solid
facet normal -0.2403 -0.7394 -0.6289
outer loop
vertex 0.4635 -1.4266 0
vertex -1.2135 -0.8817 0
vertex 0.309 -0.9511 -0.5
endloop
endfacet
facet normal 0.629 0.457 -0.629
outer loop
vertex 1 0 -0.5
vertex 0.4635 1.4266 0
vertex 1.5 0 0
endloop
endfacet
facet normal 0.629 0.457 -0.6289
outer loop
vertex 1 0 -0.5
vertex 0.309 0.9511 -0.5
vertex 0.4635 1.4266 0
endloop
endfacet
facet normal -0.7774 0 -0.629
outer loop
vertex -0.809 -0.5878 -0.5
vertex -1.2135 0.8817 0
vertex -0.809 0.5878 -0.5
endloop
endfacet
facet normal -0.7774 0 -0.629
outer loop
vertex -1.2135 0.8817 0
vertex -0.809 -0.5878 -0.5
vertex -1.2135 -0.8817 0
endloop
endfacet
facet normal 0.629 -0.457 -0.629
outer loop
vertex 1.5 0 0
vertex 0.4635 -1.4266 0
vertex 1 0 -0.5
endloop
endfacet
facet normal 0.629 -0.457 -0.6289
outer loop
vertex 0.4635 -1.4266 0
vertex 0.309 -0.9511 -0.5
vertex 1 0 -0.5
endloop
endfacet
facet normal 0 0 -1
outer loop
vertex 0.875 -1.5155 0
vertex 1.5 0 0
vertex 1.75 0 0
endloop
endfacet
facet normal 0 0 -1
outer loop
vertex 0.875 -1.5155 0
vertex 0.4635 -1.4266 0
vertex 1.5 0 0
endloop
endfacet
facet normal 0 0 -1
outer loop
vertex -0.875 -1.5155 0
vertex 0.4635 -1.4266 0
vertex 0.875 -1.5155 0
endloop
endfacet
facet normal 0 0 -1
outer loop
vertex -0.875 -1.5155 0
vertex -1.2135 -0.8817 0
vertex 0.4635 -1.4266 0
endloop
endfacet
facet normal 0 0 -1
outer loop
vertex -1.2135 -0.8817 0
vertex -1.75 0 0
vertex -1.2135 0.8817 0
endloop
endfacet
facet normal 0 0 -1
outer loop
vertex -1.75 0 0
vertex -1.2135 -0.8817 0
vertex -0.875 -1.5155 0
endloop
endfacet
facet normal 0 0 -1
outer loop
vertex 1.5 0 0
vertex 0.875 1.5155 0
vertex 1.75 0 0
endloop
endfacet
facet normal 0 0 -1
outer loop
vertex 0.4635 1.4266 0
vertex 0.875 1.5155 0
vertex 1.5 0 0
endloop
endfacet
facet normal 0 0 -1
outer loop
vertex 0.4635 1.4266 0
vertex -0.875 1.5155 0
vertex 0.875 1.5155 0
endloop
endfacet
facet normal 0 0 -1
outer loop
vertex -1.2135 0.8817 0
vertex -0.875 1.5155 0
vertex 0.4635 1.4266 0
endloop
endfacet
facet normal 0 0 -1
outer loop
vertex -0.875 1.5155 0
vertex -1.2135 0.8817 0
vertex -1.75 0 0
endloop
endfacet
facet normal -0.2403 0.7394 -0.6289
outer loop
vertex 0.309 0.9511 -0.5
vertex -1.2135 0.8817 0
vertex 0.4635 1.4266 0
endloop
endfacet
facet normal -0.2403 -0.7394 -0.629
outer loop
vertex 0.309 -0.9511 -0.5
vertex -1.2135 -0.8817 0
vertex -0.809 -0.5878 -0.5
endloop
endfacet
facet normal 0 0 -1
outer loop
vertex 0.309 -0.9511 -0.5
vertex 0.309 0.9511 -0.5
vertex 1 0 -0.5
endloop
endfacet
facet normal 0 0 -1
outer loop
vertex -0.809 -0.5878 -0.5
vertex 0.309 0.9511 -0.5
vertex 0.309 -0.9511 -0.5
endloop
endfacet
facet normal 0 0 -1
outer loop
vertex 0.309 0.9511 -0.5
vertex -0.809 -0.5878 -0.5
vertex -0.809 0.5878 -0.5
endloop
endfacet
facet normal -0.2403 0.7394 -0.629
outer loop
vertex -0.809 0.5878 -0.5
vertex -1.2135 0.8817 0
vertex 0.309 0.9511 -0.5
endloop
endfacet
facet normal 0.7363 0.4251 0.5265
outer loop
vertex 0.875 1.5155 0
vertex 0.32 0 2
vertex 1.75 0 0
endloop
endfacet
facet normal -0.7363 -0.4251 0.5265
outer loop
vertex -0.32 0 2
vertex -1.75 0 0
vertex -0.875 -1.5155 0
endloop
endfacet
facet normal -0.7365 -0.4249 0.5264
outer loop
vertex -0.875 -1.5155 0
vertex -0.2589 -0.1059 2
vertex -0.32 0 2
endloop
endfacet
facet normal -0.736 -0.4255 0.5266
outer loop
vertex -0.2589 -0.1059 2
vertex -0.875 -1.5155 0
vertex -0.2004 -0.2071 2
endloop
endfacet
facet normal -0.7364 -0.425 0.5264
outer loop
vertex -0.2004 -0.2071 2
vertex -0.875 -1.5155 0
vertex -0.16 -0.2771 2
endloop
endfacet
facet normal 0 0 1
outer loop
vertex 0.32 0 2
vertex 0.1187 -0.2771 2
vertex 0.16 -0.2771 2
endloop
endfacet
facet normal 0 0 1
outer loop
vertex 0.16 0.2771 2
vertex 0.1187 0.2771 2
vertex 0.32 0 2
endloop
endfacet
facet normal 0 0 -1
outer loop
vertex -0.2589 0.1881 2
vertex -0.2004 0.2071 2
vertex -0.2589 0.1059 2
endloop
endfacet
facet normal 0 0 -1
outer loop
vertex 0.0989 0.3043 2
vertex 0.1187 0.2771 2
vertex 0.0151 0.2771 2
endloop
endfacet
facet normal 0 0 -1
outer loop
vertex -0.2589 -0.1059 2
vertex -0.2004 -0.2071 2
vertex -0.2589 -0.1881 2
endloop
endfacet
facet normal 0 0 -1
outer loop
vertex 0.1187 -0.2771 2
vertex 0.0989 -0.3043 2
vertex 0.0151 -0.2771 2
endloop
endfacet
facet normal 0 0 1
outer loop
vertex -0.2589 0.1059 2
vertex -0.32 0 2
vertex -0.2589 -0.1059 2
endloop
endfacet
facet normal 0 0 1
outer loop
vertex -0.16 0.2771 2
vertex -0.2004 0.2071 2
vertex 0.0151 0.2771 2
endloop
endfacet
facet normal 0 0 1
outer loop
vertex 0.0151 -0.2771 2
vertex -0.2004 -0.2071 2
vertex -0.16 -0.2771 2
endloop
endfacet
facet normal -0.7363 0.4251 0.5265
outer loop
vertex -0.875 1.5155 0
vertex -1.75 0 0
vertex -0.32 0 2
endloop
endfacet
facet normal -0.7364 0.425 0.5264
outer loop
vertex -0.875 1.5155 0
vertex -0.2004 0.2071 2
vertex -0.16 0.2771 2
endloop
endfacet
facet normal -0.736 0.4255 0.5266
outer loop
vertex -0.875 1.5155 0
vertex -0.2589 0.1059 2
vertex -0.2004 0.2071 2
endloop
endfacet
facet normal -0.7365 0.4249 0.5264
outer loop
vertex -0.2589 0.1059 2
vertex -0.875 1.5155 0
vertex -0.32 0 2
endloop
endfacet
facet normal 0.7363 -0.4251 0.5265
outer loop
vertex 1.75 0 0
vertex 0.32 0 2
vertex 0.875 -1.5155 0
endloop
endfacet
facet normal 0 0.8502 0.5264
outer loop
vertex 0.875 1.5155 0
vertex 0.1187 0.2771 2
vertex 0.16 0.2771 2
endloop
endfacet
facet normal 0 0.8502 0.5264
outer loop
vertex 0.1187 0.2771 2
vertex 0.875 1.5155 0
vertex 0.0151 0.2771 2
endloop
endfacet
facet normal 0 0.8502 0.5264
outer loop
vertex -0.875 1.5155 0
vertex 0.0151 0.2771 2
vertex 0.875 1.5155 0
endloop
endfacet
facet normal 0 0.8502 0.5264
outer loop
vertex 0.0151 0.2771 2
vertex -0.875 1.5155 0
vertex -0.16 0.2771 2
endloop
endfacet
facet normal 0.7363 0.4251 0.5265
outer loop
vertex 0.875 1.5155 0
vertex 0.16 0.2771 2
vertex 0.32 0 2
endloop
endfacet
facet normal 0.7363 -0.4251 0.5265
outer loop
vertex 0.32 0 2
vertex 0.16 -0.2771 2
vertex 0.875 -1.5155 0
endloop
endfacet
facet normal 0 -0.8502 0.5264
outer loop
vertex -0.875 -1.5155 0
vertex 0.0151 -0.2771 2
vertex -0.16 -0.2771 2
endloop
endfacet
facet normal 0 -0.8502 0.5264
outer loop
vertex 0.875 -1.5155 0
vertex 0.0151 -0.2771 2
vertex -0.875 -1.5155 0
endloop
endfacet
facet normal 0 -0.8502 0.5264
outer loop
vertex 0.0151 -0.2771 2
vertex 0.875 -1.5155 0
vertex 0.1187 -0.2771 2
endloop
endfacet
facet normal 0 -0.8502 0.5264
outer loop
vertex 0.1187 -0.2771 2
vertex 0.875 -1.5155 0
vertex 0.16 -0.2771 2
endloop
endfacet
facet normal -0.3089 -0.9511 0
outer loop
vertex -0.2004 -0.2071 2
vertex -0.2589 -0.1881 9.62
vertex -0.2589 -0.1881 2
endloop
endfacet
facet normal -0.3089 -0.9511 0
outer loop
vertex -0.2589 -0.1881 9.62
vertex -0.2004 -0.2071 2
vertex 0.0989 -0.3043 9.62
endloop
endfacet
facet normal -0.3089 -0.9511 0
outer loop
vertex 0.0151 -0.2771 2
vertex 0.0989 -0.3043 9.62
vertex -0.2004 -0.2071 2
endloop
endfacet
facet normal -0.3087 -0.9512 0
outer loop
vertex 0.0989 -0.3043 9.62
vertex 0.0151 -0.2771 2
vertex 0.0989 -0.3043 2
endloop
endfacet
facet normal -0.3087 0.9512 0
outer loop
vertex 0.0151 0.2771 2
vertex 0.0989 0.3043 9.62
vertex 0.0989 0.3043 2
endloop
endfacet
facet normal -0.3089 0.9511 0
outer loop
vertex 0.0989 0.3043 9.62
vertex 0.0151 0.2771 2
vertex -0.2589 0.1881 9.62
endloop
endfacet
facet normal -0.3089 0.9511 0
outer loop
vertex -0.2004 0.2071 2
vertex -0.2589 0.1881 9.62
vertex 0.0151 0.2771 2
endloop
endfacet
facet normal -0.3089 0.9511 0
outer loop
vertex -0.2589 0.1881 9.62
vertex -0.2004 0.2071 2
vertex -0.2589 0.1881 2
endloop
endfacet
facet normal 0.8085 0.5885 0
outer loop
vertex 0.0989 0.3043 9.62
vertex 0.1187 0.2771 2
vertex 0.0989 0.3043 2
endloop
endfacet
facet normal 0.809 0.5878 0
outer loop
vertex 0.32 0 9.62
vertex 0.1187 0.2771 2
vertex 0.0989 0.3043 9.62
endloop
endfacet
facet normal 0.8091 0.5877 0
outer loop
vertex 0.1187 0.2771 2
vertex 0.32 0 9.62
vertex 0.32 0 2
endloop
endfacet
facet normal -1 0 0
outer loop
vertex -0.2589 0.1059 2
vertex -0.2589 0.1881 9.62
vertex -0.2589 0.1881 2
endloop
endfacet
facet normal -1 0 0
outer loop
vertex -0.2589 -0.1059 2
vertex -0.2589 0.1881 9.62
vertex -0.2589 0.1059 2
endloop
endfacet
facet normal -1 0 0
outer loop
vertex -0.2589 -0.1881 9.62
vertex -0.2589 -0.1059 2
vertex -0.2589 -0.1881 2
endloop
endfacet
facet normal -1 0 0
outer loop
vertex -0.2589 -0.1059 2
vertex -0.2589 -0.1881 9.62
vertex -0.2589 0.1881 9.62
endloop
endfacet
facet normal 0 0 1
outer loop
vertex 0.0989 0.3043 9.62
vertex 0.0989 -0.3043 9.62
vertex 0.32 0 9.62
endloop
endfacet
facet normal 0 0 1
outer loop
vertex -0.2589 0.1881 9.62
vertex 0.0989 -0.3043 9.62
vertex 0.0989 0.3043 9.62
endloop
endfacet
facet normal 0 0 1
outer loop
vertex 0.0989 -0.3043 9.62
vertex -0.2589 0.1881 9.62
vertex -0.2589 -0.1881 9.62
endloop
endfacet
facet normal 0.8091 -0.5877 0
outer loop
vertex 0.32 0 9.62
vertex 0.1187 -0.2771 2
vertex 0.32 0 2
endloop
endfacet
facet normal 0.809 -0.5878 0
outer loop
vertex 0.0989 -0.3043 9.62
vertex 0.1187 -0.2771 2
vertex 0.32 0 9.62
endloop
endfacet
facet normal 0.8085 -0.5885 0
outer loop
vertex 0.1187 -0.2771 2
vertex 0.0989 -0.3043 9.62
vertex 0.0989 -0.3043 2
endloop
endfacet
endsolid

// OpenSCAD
module default_probe() {
   //tip part 1
   color("Blue")
   translate([0,0,-0.5])cylinder(h=0.5,d1=2,d2=3,center=false);
   //tip part 2
   color("Red")
   translate([0,0,0])cylinder(h=2,d1=3.5,d2=0.64,center=false);
   //shaft 
   color("Red")
   translate([0,0,2])cylinder(h=7.62,d=0.64,center=false);
}
default_probe();
